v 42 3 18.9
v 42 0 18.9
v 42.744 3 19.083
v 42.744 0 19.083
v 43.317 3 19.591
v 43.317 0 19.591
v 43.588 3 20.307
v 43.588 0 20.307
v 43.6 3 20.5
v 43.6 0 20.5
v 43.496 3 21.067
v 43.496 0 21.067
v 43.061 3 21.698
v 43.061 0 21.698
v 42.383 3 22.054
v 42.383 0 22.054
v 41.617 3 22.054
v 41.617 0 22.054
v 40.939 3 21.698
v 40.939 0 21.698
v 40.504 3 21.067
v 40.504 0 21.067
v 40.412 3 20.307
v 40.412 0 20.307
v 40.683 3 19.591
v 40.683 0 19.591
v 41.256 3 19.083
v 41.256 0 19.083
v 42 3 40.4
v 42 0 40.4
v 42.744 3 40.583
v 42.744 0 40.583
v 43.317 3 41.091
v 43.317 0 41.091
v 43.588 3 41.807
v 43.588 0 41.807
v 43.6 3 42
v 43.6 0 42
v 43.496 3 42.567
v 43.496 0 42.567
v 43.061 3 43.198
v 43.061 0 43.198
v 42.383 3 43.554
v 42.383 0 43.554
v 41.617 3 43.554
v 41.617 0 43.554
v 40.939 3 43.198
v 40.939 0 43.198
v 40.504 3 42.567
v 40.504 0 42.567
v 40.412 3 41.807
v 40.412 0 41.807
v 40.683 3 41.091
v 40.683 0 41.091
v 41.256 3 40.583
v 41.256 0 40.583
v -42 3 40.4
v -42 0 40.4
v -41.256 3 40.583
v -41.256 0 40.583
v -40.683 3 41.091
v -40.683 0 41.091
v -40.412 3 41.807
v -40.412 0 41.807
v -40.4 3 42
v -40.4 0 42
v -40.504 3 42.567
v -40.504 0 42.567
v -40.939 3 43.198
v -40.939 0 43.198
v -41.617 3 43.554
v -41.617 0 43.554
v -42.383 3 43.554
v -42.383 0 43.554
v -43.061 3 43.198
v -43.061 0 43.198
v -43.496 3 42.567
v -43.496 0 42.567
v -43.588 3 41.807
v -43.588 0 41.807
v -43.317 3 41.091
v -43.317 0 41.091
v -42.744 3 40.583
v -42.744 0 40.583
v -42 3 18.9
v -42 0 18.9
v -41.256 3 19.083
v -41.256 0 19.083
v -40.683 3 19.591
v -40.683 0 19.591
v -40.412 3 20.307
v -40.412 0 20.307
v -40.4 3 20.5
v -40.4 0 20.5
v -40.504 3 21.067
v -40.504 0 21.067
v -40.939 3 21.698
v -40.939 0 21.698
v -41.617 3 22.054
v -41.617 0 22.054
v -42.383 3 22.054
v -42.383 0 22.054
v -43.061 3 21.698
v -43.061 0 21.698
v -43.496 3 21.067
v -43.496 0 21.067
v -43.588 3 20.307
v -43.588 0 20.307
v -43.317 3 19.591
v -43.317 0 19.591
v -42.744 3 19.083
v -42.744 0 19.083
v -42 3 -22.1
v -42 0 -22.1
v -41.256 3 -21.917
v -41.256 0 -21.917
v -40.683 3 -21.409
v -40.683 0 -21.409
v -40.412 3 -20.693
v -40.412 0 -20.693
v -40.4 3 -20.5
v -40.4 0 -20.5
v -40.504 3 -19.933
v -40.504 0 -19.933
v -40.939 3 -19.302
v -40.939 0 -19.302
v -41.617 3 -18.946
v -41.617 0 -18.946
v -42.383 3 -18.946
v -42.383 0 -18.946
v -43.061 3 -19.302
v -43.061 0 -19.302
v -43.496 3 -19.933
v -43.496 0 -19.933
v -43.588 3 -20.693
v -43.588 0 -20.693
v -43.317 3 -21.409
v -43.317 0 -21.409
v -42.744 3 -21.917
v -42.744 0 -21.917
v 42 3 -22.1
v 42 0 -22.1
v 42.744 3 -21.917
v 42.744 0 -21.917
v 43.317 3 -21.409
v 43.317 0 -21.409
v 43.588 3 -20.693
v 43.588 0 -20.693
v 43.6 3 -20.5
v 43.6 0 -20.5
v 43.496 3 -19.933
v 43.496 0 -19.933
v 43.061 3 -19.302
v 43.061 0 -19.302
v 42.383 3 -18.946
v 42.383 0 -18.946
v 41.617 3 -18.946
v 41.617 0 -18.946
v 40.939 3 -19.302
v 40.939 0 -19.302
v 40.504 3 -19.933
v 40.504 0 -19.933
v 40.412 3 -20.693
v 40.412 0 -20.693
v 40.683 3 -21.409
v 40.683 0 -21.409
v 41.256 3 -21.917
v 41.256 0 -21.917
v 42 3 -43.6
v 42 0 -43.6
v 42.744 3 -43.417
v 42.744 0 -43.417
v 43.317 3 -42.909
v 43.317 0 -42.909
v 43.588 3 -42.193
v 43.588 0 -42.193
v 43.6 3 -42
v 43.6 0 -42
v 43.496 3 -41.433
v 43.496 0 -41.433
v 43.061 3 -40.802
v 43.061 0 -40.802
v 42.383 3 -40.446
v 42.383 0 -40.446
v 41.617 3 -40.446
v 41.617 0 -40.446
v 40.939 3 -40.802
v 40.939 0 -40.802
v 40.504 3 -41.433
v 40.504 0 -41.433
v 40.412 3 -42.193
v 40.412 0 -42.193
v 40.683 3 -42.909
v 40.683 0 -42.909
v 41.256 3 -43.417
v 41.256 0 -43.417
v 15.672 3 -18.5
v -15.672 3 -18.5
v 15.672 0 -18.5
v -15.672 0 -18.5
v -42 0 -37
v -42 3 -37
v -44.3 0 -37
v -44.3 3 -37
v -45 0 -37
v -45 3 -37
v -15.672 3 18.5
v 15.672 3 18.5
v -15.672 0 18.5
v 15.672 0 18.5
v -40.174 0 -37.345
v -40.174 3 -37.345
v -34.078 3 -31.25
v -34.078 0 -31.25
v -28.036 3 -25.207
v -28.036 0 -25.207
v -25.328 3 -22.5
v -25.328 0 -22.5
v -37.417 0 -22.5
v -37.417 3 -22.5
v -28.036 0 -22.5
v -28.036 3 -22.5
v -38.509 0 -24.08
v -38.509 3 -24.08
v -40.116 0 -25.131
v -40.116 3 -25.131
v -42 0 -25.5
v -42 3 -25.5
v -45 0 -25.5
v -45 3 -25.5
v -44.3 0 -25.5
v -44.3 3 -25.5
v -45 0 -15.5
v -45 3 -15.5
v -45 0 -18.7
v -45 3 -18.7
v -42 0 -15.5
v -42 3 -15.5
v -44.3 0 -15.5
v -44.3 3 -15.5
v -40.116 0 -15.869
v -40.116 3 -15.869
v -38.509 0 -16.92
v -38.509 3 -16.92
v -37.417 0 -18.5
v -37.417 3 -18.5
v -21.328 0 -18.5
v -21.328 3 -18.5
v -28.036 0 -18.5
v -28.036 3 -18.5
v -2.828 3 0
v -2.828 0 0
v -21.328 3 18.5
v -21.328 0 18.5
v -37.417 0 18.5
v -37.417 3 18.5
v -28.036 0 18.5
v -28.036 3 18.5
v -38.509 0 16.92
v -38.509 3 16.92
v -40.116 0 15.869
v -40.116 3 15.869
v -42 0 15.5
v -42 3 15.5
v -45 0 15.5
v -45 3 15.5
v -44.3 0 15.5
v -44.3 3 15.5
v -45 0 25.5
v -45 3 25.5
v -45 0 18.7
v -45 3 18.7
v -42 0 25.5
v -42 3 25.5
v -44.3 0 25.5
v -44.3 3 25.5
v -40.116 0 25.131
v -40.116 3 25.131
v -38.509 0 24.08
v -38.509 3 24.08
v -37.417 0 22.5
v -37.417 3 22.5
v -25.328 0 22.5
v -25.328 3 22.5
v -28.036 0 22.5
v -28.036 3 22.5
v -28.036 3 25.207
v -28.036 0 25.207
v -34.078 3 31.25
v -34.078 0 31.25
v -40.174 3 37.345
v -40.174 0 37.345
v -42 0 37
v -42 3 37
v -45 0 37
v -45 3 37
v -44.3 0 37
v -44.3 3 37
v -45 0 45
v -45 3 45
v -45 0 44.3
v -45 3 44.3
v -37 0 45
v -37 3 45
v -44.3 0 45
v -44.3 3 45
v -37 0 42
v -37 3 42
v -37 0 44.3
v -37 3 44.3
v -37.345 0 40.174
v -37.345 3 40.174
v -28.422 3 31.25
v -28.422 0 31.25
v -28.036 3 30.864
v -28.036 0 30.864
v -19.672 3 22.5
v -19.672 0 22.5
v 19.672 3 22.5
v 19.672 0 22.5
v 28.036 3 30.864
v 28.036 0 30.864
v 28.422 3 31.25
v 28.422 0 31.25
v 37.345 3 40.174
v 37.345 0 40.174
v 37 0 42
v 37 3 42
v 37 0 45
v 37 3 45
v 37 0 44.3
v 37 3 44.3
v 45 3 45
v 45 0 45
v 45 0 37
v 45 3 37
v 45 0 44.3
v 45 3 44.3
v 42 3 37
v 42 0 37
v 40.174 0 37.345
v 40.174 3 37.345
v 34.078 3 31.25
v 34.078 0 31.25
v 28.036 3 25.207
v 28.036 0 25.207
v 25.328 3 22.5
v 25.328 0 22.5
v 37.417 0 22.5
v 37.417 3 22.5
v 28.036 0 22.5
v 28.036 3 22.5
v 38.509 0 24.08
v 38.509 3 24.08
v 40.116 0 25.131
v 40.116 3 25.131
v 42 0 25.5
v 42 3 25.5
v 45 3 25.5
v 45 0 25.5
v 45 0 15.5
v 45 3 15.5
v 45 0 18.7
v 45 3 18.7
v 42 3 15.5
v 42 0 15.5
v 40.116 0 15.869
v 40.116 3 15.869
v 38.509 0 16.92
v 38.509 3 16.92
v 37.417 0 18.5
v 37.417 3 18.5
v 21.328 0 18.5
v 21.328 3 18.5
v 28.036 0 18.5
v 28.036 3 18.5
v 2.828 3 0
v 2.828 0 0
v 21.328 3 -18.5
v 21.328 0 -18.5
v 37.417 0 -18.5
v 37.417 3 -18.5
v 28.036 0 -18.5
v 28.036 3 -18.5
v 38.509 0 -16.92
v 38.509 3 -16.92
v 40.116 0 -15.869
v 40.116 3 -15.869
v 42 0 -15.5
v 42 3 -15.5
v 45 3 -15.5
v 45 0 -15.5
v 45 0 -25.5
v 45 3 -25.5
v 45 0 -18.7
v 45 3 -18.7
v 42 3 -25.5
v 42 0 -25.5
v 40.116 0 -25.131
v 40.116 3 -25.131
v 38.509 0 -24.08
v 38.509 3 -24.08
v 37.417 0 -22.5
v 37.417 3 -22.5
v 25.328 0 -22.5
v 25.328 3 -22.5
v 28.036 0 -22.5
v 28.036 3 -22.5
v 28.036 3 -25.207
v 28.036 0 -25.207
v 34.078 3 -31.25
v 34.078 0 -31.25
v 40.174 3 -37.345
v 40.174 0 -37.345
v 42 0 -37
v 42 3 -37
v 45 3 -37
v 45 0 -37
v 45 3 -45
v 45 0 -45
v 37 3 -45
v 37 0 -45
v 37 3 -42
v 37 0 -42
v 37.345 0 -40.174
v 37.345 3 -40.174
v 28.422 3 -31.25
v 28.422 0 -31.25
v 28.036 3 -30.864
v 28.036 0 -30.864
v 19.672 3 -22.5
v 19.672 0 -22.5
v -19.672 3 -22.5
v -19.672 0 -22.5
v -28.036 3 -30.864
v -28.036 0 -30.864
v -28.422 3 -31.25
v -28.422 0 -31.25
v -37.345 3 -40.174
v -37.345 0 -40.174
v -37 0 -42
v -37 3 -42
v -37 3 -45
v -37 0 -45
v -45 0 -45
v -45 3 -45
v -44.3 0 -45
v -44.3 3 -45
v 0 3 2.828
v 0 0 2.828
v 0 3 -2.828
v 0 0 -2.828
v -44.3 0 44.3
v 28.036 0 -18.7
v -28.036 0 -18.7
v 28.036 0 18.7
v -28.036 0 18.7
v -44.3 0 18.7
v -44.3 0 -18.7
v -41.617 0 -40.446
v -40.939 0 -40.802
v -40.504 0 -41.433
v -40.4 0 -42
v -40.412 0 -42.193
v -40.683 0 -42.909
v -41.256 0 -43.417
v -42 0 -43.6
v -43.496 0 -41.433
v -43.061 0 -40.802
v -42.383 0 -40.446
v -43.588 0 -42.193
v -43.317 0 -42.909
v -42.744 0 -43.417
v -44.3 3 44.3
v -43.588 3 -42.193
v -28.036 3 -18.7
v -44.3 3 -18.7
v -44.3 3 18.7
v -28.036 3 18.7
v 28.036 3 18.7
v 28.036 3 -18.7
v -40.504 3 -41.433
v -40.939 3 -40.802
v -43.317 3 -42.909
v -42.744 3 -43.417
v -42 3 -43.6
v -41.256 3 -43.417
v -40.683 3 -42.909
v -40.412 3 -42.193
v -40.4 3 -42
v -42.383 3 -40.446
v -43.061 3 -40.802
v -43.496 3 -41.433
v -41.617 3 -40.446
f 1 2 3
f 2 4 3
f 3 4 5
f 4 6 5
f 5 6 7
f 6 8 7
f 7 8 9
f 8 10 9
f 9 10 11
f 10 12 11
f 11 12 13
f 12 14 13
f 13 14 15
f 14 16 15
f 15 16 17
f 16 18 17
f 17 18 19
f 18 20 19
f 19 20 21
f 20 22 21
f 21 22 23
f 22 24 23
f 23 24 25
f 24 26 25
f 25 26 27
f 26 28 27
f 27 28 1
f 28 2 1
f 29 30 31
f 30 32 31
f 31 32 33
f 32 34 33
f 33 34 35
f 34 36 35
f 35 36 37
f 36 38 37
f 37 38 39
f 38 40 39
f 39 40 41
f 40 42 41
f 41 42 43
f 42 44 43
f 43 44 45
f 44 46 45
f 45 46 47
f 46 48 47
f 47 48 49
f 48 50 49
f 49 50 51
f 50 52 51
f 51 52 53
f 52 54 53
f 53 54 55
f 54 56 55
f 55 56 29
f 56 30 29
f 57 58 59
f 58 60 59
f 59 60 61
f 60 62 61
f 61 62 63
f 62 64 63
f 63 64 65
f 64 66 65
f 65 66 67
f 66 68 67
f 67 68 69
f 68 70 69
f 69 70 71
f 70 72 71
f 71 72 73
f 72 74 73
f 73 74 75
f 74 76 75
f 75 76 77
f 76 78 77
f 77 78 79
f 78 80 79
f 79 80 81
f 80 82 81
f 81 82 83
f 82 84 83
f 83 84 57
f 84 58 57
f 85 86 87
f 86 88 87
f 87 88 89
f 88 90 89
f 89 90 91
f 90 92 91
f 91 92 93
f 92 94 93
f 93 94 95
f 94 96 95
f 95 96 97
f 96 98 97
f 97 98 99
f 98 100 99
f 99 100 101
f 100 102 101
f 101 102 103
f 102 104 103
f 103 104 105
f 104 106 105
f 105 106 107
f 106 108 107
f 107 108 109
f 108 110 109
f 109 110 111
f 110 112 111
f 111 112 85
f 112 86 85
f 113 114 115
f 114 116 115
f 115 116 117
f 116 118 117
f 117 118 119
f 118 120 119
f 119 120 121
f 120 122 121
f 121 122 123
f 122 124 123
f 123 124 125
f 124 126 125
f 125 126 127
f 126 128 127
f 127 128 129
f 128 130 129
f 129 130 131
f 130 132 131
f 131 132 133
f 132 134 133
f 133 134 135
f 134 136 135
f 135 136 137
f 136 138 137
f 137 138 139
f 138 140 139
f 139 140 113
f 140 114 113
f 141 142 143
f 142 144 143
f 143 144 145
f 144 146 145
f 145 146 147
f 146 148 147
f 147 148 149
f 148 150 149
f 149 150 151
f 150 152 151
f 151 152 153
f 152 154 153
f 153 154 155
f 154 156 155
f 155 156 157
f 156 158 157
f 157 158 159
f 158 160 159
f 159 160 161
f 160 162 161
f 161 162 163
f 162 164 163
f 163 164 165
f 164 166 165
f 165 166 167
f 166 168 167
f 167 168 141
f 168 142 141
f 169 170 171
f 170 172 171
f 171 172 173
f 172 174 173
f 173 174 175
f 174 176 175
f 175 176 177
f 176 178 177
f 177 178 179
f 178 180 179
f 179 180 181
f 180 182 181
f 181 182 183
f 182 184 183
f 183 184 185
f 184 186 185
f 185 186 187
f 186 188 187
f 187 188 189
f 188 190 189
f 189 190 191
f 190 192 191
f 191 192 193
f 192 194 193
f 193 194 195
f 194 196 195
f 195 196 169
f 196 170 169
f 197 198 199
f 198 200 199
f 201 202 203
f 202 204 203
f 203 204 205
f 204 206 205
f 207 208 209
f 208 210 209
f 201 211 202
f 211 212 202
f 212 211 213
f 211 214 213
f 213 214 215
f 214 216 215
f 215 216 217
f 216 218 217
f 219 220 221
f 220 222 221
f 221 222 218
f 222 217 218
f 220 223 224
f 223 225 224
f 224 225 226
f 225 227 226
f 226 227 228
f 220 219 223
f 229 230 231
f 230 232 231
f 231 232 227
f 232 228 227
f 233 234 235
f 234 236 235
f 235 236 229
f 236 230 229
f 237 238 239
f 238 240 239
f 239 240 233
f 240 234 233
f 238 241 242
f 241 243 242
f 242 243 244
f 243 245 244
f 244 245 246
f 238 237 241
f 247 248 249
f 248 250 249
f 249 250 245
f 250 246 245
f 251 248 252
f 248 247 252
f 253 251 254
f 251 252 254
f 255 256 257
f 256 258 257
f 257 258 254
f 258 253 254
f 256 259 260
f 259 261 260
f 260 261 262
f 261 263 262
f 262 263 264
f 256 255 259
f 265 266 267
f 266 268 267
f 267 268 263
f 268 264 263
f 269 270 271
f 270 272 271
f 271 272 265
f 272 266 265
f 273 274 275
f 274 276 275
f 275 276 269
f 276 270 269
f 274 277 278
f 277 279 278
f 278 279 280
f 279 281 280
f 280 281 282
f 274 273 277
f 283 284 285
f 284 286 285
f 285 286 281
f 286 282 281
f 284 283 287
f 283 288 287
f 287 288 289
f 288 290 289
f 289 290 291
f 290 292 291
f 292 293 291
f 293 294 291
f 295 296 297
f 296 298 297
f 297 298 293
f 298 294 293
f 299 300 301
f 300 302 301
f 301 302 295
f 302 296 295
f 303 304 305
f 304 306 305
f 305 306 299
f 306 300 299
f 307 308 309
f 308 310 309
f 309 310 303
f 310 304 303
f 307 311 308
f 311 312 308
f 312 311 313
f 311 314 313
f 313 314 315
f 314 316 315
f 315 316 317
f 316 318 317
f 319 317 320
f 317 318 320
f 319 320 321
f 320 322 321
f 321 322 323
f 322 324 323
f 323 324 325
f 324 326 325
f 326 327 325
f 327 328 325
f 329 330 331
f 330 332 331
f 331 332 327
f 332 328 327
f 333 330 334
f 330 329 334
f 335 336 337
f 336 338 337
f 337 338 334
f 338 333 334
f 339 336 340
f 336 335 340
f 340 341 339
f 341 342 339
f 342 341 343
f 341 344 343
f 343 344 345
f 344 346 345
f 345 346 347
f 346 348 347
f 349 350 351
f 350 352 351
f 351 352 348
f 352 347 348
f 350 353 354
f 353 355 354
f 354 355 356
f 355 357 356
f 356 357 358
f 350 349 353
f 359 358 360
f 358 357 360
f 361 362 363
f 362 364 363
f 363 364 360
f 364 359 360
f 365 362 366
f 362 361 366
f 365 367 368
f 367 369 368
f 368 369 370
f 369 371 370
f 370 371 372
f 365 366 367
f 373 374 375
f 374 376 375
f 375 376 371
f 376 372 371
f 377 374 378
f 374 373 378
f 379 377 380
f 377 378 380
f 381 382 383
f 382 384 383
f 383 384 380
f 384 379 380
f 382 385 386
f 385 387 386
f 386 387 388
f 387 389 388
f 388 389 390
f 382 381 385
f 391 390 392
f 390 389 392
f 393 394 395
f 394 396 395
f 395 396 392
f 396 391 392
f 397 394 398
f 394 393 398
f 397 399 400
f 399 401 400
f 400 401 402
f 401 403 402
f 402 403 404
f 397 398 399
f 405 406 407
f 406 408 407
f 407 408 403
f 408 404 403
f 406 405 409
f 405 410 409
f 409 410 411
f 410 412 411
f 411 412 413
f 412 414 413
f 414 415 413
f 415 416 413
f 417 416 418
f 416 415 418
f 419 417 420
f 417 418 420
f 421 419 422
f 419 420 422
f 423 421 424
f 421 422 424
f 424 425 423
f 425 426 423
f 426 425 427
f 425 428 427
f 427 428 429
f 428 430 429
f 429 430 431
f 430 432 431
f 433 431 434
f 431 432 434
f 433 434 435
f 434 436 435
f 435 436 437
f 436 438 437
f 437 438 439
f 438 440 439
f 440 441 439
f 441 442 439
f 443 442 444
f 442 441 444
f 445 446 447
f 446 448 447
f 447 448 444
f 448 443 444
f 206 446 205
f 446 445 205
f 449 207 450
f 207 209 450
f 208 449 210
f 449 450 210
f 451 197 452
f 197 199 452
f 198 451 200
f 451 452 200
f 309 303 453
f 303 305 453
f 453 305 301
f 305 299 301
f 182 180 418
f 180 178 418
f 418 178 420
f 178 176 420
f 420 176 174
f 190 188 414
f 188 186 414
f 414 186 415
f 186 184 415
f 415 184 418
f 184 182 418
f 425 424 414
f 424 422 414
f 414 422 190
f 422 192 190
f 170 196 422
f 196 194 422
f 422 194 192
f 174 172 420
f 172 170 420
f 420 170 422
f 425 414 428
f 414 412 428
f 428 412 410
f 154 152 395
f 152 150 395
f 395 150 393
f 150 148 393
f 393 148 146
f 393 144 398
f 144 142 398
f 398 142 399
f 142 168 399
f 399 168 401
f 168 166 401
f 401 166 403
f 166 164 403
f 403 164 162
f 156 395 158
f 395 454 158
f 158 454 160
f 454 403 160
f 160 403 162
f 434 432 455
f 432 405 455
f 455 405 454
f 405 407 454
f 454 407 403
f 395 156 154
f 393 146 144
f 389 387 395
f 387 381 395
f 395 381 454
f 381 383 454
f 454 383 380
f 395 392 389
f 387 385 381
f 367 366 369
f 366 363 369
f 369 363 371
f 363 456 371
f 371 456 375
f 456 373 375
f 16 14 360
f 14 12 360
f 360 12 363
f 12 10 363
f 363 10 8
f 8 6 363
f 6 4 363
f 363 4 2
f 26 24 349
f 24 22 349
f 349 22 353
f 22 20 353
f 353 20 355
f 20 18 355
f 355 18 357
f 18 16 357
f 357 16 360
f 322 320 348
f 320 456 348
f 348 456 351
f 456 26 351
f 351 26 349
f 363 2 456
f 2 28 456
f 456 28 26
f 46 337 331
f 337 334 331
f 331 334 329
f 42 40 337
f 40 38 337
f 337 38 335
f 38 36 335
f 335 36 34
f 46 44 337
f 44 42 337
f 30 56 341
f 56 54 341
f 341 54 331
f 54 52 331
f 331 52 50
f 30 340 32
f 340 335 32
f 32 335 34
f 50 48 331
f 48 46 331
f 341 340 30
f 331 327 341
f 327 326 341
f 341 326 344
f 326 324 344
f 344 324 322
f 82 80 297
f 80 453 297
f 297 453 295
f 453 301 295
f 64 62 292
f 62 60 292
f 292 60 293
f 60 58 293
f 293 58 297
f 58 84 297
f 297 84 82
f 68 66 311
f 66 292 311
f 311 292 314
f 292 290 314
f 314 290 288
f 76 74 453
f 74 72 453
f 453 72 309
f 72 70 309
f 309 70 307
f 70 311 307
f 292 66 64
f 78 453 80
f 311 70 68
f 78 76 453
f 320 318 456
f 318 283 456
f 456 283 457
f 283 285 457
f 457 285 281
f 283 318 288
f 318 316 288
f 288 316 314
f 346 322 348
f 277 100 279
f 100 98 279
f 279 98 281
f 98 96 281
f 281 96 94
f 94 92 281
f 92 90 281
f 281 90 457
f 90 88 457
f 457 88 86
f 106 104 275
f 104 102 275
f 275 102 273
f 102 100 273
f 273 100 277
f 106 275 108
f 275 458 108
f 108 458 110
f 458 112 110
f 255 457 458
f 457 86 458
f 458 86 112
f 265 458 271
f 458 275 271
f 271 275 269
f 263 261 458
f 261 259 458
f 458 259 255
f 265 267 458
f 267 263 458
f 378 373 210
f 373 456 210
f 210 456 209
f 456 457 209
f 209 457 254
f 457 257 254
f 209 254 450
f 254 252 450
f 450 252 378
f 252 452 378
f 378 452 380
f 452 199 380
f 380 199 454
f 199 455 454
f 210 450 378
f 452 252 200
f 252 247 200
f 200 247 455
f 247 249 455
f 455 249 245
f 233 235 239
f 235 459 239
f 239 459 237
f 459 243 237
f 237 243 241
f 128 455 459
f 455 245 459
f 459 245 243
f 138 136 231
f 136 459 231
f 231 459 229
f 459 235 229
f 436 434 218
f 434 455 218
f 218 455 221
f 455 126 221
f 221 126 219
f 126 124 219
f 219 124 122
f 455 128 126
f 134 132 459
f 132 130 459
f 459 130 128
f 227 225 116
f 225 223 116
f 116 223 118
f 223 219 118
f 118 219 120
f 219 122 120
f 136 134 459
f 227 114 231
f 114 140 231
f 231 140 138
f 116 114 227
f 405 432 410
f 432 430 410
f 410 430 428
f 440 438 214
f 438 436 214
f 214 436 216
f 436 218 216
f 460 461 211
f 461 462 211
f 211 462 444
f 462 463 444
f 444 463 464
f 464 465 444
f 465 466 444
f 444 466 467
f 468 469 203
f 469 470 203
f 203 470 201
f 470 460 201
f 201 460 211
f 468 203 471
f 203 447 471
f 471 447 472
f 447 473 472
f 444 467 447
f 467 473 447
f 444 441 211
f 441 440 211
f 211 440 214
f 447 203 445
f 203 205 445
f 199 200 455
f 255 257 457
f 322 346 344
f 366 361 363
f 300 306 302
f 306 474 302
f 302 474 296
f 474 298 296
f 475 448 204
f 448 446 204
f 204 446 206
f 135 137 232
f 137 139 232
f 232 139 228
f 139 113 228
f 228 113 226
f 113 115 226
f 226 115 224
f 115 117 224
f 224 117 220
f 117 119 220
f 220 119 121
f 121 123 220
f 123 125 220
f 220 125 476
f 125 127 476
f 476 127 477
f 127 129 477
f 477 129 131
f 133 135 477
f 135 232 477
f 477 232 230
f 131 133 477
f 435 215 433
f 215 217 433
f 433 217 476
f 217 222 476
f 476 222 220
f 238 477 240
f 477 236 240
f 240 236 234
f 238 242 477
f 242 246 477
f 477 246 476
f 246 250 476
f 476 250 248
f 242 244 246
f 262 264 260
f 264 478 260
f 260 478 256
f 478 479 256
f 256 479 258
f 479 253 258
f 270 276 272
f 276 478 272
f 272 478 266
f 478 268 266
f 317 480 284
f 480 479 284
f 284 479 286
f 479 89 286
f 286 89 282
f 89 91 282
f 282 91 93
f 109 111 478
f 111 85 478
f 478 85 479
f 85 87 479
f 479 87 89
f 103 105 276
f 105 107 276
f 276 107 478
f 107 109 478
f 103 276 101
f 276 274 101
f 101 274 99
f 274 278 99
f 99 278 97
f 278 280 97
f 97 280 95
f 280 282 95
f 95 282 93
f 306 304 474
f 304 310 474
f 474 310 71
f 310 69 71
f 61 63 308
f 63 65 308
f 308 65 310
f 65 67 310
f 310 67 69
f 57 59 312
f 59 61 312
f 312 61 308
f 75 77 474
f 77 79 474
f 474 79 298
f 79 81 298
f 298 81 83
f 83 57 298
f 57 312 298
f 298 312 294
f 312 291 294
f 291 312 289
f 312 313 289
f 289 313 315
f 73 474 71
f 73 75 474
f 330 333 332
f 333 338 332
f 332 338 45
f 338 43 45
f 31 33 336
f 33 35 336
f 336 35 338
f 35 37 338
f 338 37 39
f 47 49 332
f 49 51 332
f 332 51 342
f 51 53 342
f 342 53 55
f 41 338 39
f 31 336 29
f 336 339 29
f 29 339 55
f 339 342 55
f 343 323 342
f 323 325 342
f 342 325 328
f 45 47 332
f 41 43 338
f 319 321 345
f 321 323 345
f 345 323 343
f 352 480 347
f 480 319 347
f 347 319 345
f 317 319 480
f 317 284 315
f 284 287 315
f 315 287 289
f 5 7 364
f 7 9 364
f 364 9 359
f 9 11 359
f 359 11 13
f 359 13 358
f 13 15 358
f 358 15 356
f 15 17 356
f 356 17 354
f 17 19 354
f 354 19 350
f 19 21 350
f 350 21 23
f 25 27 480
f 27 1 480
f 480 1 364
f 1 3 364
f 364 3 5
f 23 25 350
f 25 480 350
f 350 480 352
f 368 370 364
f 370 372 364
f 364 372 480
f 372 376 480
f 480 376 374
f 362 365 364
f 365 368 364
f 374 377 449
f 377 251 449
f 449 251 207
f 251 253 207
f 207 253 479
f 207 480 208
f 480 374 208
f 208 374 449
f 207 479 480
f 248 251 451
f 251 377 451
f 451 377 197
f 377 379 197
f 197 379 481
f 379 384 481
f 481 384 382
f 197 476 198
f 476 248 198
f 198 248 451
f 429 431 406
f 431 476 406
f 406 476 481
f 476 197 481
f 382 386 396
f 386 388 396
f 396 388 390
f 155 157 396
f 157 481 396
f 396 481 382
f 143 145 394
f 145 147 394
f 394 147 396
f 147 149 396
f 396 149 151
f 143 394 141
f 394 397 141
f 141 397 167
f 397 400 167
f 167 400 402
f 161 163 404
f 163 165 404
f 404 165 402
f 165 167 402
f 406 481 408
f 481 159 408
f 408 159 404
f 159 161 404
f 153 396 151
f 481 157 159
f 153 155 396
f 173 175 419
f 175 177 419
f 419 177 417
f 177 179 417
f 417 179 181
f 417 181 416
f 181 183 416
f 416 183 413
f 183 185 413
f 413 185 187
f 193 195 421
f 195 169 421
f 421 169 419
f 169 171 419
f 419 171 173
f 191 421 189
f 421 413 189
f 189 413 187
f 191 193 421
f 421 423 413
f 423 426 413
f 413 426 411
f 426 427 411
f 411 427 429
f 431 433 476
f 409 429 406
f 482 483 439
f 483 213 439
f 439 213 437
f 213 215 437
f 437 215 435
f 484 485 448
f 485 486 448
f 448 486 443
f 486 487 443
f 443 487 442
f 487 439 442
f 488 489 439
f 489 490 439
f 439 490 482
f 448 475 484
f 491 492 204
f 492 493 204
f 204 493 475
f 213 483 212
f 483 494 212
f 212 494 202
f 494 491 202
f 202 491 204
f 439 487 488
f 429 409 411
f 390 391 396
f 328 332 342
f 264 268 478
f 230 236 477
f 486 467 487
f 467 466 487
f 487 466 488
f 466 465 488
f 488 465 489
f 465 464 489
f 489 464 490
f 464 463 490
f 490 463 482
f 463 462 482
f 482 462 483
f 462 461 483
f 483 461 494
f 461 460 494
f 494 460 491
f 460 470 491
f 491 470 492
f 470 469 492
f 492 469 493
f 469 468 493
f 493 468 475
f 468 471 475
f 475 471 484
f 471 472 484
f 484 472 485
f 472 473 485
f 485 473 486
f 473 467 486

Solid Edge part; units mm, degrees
sketch "Sketch1" plane through (0, 0, 0) normal (0, -1, 0) x (1, 0, 0)
  line L0 (-45, -45) -> (-37, -45)
  line L1 (-37, -42) -> (-37, -45)
  line L2 (-19.6716, -22.5) -> (-37.3454, -40.1738)
  line L3 (-19.6716, -22.5) -> (19.6716, -22.5)
  line L4 (37.3454, -40.1738) -> (19.6716, -22.5)
  arc A0 (37, -42) -> (37.3454, -40.1738) centre (42, -42) cw
  line L5 (37, -42) -> (37, -45)
  line L6 (37, -45) -> (45, -45)
  line L7 (45, -45) -> (45, -37)
  line L8 (42, -37) -> (45, -37)
  line L9 (25.3284, -22.5) -> (40.1738, -37.3454)
  line L10 (25.3284, -22.5) -> (37.4174, -22.5)
  arc A1 (42, -25.5) -> (37.4174, -22.5) centre (42, -20.5) cw
  line L11 (42, -25.5) -> (45, -25.5)
  line L12 (45, -25.5) -> (45, -15.5)
  line L13 (42, -15.5) -> (45, -15.5)
  line L14 (37.4174, -18.5) -> (21.3284, -18.5)
  line L15 (2.8284, 0) -> (21.3284, -18.5)
  line L16 (21.3284, 18.5) -> (2.8284, 0)
  line L17 (21.3284, 18.5) -> (37.4174, 18.5)
  line L18 (42, 15.5) -> (45, 15.5)
  line L19 (45, 15.5) -> (45, 25.5)
  line L20 (42, 25.5) -> (45, 25.5)
  arc A2 (37.4174, 22.5) -> (42, 25.5) centre (42, 20.5) cw
  line L21 (37.4174, 22.5) -> (25.3284, 22.5)
  line L22 (40.1738, 37.3454) -> (25.3284, 22.5)
  line L23 (42, 37) -> (45, 37)
  line L24 (45, 37) -> (45, 45)
  line L25 (45, 45) -> (37, 45)
  line L26 (37, 42) -> (37, 45)
  arc A3 (37.3454, 40.1738) -> (37, 42) centre (42, 42) cw
  line L27 (19.6716, 22.5) -> (37.3454, 40.1738)
  line L28 (19.6716, 22.5) -> (-19.6716, 22.5)
  line L29 (-37.3454, 40.1738) -> (-19.6716, 22.5)
  line L30 (-37, 42) -> (-37, 45)
  line L31 (-37, 45) -> (-45, 45)
  line L32 (-45, 45) -> (-45, 37)
  line L33 (-42, 37) -> (-45, 37)
  arc A4 (-40.1738, 37.3454) -> (-42, 37) centre (-42, 42) cw
  line L34 (-25.3284, 22.5) -> (-40.1738, 37.3454)
  line L35 (-25.3284, 22.5) -> (-37.4174, 22.5)
  arc A5 (-42, 25.5) -> (-37.4174, 22.5) centre (-42, 20.5) cw
  line L36 (-42, 25.5) -> (-45, 25.5)
  line L37 (-45, 25.5) -> (-45, 15.5)
  line L38 (-42, 15.5) -> (-45, 15.5)
  line L39 (-37.4174, 18.5) -> (-21.3284, 18.5)
  line L40 (-2.8284, 0) -> (-21.3284, 18.5)
  line L41 (-21.3284, -18.5) -> (-2.8284, 0)
  line L42 (-21.3284, -18.5) -> (-37.4174, -18.5)
  arc A6 (-42, -15.5) -> (-37.4174, -18.5) centre (-42, -20.5) cw
  line L43 (-42, -15.5) -> (-45, -15.5)
  line L44 (-45, -15.5) -> (-45, -25.5)
  line L45 (-42, -25.5) -> (-45, -25.5)
  line L46 (-37.4174, -22.5) -> (-25.3284, -22.5)
  line L47 (-40.1738, -37.3454) -> (-25.3284, -22.5)
  arc A7 (-42, -37) -> (-40.1738, -37.3454) centre (-42, -42) cw
  line L48 (-42, -37) -> (-45, -37)
  line L49 (-45, -37) -> (-45, -45)
  arc A8 (-37, -42) -> (-37.3454, -40.1738) centre (-42, -42) ccw
  arc A9 (42, -37) -> (40.1738, -37.3454) centre (42, -42) ccw
  arc A10 (42, -15.5) -> (37.4174, -18.5) centre (42, -20.5) ccw
  arc A11 (37.4174, 18.5) -> (42, 15.5) centre (42, 20.5) ccw
  arc A12 (40.1738, 37.3454) -> (42, 37) centre (42, 42) ccw
  arc A13 (-37.3454, 40.1738) -> (-37, 42) centre (-42, 42) ccw
  arc A14 (-42, 15.5) -> (-37.4174, 18.5) centre (-42, 20.5) ccw
  arc A15 (-42, -25.5) -> (-37.4174, -22.5) centre (-42, -20.5) ccw
  circle A16 centre (-42, -42) radius 1.6
  circle A17 centre (42, -42) radius 1.6
  circle A18 centre (42, -20.5) radius 1.6
  circle A19 centre (-42, -20.5) radius 1.6
  circle A20 centre (-42, 20.5) radius 1.6
  circle A21 centre (-42, 42) radius 1.6
  circle A22 centre (42, 42) radius 1.6
  circle A23 centre (42, 20.5) radius 1.6
  line L50 (-15.6716, 18.5) -> (15.6716, 18.5)
  line L51 (0, 2.8284) -> (15.6716, 18.5)
  line L52 (-15.6716, 18.5) -> (0, 2.8284)
  line L53 (15.6716, -18.5) -> (-15.6716, -18.5)
  line L54 (0, -2.8284) -> (-15.6716, -18.5)
  line L55 (15.6716, -18.5) -> (0, -2.8284)
  dimension "D1" = 42
extrude "Protrusion1" add sketch "Sketch1" against normal blind 3
